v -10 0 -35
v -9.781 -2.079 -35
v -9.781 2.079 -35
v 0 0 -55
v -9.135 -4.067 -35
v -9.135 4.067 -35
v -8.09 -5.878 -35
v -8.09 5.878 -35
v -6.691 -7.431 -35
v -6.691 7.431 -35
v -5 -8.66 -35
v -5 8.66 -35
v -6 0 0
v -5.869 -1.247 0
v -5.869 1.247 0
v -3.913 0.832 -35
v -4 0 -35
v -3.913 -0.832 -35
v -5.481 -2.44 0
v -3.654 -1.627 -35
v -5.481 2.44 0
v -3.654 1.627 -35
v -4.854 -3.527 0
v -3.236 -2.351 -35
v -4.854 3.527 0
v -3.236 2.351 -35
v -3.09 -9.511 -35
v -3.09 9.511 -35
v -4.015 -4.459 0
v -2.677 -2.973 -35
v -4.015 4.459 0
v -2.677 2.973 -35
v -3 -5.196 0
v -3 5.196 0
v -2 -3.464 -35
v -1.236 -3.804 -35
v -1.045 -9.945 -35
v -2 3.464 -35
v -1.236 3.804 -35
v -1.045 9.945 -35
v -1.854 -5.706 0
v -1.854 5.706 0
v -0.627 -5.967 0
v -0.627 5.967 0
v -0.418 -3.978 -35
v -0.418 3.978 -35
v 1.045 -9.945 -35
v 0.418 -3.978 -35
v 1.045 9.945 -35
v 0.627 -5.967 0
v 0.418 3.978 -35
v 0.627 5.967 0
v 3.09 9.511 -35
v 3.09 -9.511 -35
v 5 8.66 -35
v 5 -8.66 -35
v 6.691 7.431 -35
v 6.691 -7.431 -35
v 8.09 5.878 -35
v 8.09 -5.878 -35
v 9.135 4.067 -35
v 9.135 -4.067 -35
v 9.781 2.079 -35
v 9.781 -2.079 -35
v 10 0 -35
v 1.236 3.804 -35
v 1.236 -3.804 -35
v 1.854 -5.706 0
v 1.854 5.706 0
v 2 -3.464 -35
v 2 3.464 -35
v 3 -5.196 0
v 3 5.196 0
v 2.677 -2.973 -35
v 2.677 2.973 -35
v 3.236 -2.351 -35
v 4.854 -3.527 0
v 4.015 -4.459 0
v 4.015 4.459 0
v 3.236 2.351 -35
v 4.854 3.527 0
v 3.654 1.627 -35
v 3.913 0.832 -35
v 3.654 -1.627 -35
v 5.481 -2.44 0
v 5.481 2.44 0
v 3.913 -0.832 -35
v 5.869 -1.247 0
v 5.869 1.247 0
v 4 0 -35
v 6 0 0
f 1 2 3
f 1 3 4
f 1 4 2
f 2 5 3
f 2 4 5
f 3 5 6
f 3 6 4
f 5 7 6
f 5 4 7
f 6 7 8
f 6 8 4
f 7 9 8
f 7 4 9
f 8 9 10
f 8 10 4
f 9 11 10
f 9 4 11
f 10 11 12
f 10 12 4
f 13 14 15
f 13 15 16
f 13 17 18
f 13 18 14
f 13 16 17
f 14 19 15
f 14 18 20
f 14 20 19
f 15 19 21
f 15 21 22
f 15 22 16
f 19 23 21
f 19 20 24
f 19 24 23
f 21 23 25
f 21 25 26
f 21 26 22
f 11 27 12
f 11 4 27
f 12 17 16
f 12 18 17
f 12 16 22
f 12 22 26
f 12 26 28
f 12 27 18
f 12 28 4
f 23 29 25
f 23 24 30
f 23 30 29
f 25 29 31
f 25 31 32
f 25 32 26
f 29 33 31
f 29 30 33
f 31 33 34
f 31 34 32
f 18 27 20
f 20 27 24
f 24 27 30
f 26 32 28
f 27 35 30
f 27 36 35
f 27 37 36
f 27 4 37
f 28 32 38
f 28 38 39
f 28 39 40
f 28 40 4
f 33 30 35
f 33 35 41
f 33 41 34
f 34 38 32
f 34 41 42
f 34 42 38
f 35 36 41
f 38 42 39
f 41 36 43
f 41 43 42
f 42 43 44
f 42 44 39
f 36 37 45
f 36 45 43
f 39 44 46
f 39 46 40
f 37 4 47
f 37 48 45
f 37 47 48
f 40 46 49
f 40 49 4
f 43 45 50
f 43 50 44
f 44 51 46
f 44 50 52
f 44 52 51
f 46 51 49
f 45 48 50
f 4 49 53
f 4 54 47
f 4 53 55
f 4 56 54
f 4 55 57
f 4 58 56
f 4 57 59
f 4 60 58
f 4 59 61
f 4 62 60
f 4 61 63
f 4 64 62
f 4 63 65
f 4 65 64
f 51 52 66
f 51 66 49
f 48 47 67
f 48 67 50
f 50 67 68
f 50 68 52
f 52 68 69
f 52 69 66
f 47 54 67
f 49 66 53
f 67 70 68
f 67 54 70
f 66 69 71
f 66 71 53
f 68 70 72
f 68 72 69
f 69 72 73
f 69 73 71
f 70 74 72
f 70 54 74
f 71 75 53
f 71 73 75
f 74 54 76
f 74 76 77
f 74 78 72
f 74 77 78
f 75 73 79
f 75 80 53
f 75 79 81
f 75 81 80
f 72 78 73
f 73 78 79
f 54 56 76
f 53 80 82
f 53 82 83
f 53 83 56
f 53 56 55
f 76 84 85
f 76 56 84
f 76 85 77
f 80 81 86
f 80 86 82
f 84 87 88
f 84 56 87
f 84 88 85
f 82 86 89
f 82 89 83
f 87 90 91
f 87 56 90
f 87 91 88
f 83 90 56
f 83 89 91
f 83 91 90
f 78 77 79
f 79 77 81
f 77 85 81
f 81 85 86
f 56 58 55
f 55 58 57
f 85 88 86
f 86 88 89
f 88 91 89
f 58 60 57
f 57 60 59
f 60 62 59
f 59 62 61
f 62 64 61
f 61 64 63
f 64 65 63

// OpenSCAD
// Start: lazy_union
default_5_default_5();
// End: lazy_union

// Modules.

// 'PartMaterial undef-default - default 5.0'
module default_5_default_5() {
  // 'None : _combine_solids_and_holes'
  union() {
    // 'default : _combine_solids_and_holes'
    union() {
      // 'stem'
      multmatrix(m=[[1.0, 0.0, 0.0, 0.0], [-0.0, -1.0, -0.0, -0.0], [-0.0, -0.0, -1.0, -0.0], [0.0, 0.0, 0.0, 1.0]]) {
        // 'stem : _combine_solids_and_holes'
        union() {
          // 'stem'
          cylinder(h=35.0, r1=6.0, r2=4.0, center=false, $fn=30);
        }
      }
      // 'head'
      multmatrix(m=[[1.0, 0.0, 0.0, 0.0], [0.0, -1.0, 0.0, 0.0], [0.0, 0.0, -1.0, -35.0], [0.0, 0.0, 0.0, 1.0]]) {
        // 'head : _combine_solids_and_holes'
        union() {
          // 'head'
          cylinder(h=20.0, r1=10.0, r2=0.0, center=false, $fn=30);
        }
      }
    }
  }
} // end module default_5_default_5
